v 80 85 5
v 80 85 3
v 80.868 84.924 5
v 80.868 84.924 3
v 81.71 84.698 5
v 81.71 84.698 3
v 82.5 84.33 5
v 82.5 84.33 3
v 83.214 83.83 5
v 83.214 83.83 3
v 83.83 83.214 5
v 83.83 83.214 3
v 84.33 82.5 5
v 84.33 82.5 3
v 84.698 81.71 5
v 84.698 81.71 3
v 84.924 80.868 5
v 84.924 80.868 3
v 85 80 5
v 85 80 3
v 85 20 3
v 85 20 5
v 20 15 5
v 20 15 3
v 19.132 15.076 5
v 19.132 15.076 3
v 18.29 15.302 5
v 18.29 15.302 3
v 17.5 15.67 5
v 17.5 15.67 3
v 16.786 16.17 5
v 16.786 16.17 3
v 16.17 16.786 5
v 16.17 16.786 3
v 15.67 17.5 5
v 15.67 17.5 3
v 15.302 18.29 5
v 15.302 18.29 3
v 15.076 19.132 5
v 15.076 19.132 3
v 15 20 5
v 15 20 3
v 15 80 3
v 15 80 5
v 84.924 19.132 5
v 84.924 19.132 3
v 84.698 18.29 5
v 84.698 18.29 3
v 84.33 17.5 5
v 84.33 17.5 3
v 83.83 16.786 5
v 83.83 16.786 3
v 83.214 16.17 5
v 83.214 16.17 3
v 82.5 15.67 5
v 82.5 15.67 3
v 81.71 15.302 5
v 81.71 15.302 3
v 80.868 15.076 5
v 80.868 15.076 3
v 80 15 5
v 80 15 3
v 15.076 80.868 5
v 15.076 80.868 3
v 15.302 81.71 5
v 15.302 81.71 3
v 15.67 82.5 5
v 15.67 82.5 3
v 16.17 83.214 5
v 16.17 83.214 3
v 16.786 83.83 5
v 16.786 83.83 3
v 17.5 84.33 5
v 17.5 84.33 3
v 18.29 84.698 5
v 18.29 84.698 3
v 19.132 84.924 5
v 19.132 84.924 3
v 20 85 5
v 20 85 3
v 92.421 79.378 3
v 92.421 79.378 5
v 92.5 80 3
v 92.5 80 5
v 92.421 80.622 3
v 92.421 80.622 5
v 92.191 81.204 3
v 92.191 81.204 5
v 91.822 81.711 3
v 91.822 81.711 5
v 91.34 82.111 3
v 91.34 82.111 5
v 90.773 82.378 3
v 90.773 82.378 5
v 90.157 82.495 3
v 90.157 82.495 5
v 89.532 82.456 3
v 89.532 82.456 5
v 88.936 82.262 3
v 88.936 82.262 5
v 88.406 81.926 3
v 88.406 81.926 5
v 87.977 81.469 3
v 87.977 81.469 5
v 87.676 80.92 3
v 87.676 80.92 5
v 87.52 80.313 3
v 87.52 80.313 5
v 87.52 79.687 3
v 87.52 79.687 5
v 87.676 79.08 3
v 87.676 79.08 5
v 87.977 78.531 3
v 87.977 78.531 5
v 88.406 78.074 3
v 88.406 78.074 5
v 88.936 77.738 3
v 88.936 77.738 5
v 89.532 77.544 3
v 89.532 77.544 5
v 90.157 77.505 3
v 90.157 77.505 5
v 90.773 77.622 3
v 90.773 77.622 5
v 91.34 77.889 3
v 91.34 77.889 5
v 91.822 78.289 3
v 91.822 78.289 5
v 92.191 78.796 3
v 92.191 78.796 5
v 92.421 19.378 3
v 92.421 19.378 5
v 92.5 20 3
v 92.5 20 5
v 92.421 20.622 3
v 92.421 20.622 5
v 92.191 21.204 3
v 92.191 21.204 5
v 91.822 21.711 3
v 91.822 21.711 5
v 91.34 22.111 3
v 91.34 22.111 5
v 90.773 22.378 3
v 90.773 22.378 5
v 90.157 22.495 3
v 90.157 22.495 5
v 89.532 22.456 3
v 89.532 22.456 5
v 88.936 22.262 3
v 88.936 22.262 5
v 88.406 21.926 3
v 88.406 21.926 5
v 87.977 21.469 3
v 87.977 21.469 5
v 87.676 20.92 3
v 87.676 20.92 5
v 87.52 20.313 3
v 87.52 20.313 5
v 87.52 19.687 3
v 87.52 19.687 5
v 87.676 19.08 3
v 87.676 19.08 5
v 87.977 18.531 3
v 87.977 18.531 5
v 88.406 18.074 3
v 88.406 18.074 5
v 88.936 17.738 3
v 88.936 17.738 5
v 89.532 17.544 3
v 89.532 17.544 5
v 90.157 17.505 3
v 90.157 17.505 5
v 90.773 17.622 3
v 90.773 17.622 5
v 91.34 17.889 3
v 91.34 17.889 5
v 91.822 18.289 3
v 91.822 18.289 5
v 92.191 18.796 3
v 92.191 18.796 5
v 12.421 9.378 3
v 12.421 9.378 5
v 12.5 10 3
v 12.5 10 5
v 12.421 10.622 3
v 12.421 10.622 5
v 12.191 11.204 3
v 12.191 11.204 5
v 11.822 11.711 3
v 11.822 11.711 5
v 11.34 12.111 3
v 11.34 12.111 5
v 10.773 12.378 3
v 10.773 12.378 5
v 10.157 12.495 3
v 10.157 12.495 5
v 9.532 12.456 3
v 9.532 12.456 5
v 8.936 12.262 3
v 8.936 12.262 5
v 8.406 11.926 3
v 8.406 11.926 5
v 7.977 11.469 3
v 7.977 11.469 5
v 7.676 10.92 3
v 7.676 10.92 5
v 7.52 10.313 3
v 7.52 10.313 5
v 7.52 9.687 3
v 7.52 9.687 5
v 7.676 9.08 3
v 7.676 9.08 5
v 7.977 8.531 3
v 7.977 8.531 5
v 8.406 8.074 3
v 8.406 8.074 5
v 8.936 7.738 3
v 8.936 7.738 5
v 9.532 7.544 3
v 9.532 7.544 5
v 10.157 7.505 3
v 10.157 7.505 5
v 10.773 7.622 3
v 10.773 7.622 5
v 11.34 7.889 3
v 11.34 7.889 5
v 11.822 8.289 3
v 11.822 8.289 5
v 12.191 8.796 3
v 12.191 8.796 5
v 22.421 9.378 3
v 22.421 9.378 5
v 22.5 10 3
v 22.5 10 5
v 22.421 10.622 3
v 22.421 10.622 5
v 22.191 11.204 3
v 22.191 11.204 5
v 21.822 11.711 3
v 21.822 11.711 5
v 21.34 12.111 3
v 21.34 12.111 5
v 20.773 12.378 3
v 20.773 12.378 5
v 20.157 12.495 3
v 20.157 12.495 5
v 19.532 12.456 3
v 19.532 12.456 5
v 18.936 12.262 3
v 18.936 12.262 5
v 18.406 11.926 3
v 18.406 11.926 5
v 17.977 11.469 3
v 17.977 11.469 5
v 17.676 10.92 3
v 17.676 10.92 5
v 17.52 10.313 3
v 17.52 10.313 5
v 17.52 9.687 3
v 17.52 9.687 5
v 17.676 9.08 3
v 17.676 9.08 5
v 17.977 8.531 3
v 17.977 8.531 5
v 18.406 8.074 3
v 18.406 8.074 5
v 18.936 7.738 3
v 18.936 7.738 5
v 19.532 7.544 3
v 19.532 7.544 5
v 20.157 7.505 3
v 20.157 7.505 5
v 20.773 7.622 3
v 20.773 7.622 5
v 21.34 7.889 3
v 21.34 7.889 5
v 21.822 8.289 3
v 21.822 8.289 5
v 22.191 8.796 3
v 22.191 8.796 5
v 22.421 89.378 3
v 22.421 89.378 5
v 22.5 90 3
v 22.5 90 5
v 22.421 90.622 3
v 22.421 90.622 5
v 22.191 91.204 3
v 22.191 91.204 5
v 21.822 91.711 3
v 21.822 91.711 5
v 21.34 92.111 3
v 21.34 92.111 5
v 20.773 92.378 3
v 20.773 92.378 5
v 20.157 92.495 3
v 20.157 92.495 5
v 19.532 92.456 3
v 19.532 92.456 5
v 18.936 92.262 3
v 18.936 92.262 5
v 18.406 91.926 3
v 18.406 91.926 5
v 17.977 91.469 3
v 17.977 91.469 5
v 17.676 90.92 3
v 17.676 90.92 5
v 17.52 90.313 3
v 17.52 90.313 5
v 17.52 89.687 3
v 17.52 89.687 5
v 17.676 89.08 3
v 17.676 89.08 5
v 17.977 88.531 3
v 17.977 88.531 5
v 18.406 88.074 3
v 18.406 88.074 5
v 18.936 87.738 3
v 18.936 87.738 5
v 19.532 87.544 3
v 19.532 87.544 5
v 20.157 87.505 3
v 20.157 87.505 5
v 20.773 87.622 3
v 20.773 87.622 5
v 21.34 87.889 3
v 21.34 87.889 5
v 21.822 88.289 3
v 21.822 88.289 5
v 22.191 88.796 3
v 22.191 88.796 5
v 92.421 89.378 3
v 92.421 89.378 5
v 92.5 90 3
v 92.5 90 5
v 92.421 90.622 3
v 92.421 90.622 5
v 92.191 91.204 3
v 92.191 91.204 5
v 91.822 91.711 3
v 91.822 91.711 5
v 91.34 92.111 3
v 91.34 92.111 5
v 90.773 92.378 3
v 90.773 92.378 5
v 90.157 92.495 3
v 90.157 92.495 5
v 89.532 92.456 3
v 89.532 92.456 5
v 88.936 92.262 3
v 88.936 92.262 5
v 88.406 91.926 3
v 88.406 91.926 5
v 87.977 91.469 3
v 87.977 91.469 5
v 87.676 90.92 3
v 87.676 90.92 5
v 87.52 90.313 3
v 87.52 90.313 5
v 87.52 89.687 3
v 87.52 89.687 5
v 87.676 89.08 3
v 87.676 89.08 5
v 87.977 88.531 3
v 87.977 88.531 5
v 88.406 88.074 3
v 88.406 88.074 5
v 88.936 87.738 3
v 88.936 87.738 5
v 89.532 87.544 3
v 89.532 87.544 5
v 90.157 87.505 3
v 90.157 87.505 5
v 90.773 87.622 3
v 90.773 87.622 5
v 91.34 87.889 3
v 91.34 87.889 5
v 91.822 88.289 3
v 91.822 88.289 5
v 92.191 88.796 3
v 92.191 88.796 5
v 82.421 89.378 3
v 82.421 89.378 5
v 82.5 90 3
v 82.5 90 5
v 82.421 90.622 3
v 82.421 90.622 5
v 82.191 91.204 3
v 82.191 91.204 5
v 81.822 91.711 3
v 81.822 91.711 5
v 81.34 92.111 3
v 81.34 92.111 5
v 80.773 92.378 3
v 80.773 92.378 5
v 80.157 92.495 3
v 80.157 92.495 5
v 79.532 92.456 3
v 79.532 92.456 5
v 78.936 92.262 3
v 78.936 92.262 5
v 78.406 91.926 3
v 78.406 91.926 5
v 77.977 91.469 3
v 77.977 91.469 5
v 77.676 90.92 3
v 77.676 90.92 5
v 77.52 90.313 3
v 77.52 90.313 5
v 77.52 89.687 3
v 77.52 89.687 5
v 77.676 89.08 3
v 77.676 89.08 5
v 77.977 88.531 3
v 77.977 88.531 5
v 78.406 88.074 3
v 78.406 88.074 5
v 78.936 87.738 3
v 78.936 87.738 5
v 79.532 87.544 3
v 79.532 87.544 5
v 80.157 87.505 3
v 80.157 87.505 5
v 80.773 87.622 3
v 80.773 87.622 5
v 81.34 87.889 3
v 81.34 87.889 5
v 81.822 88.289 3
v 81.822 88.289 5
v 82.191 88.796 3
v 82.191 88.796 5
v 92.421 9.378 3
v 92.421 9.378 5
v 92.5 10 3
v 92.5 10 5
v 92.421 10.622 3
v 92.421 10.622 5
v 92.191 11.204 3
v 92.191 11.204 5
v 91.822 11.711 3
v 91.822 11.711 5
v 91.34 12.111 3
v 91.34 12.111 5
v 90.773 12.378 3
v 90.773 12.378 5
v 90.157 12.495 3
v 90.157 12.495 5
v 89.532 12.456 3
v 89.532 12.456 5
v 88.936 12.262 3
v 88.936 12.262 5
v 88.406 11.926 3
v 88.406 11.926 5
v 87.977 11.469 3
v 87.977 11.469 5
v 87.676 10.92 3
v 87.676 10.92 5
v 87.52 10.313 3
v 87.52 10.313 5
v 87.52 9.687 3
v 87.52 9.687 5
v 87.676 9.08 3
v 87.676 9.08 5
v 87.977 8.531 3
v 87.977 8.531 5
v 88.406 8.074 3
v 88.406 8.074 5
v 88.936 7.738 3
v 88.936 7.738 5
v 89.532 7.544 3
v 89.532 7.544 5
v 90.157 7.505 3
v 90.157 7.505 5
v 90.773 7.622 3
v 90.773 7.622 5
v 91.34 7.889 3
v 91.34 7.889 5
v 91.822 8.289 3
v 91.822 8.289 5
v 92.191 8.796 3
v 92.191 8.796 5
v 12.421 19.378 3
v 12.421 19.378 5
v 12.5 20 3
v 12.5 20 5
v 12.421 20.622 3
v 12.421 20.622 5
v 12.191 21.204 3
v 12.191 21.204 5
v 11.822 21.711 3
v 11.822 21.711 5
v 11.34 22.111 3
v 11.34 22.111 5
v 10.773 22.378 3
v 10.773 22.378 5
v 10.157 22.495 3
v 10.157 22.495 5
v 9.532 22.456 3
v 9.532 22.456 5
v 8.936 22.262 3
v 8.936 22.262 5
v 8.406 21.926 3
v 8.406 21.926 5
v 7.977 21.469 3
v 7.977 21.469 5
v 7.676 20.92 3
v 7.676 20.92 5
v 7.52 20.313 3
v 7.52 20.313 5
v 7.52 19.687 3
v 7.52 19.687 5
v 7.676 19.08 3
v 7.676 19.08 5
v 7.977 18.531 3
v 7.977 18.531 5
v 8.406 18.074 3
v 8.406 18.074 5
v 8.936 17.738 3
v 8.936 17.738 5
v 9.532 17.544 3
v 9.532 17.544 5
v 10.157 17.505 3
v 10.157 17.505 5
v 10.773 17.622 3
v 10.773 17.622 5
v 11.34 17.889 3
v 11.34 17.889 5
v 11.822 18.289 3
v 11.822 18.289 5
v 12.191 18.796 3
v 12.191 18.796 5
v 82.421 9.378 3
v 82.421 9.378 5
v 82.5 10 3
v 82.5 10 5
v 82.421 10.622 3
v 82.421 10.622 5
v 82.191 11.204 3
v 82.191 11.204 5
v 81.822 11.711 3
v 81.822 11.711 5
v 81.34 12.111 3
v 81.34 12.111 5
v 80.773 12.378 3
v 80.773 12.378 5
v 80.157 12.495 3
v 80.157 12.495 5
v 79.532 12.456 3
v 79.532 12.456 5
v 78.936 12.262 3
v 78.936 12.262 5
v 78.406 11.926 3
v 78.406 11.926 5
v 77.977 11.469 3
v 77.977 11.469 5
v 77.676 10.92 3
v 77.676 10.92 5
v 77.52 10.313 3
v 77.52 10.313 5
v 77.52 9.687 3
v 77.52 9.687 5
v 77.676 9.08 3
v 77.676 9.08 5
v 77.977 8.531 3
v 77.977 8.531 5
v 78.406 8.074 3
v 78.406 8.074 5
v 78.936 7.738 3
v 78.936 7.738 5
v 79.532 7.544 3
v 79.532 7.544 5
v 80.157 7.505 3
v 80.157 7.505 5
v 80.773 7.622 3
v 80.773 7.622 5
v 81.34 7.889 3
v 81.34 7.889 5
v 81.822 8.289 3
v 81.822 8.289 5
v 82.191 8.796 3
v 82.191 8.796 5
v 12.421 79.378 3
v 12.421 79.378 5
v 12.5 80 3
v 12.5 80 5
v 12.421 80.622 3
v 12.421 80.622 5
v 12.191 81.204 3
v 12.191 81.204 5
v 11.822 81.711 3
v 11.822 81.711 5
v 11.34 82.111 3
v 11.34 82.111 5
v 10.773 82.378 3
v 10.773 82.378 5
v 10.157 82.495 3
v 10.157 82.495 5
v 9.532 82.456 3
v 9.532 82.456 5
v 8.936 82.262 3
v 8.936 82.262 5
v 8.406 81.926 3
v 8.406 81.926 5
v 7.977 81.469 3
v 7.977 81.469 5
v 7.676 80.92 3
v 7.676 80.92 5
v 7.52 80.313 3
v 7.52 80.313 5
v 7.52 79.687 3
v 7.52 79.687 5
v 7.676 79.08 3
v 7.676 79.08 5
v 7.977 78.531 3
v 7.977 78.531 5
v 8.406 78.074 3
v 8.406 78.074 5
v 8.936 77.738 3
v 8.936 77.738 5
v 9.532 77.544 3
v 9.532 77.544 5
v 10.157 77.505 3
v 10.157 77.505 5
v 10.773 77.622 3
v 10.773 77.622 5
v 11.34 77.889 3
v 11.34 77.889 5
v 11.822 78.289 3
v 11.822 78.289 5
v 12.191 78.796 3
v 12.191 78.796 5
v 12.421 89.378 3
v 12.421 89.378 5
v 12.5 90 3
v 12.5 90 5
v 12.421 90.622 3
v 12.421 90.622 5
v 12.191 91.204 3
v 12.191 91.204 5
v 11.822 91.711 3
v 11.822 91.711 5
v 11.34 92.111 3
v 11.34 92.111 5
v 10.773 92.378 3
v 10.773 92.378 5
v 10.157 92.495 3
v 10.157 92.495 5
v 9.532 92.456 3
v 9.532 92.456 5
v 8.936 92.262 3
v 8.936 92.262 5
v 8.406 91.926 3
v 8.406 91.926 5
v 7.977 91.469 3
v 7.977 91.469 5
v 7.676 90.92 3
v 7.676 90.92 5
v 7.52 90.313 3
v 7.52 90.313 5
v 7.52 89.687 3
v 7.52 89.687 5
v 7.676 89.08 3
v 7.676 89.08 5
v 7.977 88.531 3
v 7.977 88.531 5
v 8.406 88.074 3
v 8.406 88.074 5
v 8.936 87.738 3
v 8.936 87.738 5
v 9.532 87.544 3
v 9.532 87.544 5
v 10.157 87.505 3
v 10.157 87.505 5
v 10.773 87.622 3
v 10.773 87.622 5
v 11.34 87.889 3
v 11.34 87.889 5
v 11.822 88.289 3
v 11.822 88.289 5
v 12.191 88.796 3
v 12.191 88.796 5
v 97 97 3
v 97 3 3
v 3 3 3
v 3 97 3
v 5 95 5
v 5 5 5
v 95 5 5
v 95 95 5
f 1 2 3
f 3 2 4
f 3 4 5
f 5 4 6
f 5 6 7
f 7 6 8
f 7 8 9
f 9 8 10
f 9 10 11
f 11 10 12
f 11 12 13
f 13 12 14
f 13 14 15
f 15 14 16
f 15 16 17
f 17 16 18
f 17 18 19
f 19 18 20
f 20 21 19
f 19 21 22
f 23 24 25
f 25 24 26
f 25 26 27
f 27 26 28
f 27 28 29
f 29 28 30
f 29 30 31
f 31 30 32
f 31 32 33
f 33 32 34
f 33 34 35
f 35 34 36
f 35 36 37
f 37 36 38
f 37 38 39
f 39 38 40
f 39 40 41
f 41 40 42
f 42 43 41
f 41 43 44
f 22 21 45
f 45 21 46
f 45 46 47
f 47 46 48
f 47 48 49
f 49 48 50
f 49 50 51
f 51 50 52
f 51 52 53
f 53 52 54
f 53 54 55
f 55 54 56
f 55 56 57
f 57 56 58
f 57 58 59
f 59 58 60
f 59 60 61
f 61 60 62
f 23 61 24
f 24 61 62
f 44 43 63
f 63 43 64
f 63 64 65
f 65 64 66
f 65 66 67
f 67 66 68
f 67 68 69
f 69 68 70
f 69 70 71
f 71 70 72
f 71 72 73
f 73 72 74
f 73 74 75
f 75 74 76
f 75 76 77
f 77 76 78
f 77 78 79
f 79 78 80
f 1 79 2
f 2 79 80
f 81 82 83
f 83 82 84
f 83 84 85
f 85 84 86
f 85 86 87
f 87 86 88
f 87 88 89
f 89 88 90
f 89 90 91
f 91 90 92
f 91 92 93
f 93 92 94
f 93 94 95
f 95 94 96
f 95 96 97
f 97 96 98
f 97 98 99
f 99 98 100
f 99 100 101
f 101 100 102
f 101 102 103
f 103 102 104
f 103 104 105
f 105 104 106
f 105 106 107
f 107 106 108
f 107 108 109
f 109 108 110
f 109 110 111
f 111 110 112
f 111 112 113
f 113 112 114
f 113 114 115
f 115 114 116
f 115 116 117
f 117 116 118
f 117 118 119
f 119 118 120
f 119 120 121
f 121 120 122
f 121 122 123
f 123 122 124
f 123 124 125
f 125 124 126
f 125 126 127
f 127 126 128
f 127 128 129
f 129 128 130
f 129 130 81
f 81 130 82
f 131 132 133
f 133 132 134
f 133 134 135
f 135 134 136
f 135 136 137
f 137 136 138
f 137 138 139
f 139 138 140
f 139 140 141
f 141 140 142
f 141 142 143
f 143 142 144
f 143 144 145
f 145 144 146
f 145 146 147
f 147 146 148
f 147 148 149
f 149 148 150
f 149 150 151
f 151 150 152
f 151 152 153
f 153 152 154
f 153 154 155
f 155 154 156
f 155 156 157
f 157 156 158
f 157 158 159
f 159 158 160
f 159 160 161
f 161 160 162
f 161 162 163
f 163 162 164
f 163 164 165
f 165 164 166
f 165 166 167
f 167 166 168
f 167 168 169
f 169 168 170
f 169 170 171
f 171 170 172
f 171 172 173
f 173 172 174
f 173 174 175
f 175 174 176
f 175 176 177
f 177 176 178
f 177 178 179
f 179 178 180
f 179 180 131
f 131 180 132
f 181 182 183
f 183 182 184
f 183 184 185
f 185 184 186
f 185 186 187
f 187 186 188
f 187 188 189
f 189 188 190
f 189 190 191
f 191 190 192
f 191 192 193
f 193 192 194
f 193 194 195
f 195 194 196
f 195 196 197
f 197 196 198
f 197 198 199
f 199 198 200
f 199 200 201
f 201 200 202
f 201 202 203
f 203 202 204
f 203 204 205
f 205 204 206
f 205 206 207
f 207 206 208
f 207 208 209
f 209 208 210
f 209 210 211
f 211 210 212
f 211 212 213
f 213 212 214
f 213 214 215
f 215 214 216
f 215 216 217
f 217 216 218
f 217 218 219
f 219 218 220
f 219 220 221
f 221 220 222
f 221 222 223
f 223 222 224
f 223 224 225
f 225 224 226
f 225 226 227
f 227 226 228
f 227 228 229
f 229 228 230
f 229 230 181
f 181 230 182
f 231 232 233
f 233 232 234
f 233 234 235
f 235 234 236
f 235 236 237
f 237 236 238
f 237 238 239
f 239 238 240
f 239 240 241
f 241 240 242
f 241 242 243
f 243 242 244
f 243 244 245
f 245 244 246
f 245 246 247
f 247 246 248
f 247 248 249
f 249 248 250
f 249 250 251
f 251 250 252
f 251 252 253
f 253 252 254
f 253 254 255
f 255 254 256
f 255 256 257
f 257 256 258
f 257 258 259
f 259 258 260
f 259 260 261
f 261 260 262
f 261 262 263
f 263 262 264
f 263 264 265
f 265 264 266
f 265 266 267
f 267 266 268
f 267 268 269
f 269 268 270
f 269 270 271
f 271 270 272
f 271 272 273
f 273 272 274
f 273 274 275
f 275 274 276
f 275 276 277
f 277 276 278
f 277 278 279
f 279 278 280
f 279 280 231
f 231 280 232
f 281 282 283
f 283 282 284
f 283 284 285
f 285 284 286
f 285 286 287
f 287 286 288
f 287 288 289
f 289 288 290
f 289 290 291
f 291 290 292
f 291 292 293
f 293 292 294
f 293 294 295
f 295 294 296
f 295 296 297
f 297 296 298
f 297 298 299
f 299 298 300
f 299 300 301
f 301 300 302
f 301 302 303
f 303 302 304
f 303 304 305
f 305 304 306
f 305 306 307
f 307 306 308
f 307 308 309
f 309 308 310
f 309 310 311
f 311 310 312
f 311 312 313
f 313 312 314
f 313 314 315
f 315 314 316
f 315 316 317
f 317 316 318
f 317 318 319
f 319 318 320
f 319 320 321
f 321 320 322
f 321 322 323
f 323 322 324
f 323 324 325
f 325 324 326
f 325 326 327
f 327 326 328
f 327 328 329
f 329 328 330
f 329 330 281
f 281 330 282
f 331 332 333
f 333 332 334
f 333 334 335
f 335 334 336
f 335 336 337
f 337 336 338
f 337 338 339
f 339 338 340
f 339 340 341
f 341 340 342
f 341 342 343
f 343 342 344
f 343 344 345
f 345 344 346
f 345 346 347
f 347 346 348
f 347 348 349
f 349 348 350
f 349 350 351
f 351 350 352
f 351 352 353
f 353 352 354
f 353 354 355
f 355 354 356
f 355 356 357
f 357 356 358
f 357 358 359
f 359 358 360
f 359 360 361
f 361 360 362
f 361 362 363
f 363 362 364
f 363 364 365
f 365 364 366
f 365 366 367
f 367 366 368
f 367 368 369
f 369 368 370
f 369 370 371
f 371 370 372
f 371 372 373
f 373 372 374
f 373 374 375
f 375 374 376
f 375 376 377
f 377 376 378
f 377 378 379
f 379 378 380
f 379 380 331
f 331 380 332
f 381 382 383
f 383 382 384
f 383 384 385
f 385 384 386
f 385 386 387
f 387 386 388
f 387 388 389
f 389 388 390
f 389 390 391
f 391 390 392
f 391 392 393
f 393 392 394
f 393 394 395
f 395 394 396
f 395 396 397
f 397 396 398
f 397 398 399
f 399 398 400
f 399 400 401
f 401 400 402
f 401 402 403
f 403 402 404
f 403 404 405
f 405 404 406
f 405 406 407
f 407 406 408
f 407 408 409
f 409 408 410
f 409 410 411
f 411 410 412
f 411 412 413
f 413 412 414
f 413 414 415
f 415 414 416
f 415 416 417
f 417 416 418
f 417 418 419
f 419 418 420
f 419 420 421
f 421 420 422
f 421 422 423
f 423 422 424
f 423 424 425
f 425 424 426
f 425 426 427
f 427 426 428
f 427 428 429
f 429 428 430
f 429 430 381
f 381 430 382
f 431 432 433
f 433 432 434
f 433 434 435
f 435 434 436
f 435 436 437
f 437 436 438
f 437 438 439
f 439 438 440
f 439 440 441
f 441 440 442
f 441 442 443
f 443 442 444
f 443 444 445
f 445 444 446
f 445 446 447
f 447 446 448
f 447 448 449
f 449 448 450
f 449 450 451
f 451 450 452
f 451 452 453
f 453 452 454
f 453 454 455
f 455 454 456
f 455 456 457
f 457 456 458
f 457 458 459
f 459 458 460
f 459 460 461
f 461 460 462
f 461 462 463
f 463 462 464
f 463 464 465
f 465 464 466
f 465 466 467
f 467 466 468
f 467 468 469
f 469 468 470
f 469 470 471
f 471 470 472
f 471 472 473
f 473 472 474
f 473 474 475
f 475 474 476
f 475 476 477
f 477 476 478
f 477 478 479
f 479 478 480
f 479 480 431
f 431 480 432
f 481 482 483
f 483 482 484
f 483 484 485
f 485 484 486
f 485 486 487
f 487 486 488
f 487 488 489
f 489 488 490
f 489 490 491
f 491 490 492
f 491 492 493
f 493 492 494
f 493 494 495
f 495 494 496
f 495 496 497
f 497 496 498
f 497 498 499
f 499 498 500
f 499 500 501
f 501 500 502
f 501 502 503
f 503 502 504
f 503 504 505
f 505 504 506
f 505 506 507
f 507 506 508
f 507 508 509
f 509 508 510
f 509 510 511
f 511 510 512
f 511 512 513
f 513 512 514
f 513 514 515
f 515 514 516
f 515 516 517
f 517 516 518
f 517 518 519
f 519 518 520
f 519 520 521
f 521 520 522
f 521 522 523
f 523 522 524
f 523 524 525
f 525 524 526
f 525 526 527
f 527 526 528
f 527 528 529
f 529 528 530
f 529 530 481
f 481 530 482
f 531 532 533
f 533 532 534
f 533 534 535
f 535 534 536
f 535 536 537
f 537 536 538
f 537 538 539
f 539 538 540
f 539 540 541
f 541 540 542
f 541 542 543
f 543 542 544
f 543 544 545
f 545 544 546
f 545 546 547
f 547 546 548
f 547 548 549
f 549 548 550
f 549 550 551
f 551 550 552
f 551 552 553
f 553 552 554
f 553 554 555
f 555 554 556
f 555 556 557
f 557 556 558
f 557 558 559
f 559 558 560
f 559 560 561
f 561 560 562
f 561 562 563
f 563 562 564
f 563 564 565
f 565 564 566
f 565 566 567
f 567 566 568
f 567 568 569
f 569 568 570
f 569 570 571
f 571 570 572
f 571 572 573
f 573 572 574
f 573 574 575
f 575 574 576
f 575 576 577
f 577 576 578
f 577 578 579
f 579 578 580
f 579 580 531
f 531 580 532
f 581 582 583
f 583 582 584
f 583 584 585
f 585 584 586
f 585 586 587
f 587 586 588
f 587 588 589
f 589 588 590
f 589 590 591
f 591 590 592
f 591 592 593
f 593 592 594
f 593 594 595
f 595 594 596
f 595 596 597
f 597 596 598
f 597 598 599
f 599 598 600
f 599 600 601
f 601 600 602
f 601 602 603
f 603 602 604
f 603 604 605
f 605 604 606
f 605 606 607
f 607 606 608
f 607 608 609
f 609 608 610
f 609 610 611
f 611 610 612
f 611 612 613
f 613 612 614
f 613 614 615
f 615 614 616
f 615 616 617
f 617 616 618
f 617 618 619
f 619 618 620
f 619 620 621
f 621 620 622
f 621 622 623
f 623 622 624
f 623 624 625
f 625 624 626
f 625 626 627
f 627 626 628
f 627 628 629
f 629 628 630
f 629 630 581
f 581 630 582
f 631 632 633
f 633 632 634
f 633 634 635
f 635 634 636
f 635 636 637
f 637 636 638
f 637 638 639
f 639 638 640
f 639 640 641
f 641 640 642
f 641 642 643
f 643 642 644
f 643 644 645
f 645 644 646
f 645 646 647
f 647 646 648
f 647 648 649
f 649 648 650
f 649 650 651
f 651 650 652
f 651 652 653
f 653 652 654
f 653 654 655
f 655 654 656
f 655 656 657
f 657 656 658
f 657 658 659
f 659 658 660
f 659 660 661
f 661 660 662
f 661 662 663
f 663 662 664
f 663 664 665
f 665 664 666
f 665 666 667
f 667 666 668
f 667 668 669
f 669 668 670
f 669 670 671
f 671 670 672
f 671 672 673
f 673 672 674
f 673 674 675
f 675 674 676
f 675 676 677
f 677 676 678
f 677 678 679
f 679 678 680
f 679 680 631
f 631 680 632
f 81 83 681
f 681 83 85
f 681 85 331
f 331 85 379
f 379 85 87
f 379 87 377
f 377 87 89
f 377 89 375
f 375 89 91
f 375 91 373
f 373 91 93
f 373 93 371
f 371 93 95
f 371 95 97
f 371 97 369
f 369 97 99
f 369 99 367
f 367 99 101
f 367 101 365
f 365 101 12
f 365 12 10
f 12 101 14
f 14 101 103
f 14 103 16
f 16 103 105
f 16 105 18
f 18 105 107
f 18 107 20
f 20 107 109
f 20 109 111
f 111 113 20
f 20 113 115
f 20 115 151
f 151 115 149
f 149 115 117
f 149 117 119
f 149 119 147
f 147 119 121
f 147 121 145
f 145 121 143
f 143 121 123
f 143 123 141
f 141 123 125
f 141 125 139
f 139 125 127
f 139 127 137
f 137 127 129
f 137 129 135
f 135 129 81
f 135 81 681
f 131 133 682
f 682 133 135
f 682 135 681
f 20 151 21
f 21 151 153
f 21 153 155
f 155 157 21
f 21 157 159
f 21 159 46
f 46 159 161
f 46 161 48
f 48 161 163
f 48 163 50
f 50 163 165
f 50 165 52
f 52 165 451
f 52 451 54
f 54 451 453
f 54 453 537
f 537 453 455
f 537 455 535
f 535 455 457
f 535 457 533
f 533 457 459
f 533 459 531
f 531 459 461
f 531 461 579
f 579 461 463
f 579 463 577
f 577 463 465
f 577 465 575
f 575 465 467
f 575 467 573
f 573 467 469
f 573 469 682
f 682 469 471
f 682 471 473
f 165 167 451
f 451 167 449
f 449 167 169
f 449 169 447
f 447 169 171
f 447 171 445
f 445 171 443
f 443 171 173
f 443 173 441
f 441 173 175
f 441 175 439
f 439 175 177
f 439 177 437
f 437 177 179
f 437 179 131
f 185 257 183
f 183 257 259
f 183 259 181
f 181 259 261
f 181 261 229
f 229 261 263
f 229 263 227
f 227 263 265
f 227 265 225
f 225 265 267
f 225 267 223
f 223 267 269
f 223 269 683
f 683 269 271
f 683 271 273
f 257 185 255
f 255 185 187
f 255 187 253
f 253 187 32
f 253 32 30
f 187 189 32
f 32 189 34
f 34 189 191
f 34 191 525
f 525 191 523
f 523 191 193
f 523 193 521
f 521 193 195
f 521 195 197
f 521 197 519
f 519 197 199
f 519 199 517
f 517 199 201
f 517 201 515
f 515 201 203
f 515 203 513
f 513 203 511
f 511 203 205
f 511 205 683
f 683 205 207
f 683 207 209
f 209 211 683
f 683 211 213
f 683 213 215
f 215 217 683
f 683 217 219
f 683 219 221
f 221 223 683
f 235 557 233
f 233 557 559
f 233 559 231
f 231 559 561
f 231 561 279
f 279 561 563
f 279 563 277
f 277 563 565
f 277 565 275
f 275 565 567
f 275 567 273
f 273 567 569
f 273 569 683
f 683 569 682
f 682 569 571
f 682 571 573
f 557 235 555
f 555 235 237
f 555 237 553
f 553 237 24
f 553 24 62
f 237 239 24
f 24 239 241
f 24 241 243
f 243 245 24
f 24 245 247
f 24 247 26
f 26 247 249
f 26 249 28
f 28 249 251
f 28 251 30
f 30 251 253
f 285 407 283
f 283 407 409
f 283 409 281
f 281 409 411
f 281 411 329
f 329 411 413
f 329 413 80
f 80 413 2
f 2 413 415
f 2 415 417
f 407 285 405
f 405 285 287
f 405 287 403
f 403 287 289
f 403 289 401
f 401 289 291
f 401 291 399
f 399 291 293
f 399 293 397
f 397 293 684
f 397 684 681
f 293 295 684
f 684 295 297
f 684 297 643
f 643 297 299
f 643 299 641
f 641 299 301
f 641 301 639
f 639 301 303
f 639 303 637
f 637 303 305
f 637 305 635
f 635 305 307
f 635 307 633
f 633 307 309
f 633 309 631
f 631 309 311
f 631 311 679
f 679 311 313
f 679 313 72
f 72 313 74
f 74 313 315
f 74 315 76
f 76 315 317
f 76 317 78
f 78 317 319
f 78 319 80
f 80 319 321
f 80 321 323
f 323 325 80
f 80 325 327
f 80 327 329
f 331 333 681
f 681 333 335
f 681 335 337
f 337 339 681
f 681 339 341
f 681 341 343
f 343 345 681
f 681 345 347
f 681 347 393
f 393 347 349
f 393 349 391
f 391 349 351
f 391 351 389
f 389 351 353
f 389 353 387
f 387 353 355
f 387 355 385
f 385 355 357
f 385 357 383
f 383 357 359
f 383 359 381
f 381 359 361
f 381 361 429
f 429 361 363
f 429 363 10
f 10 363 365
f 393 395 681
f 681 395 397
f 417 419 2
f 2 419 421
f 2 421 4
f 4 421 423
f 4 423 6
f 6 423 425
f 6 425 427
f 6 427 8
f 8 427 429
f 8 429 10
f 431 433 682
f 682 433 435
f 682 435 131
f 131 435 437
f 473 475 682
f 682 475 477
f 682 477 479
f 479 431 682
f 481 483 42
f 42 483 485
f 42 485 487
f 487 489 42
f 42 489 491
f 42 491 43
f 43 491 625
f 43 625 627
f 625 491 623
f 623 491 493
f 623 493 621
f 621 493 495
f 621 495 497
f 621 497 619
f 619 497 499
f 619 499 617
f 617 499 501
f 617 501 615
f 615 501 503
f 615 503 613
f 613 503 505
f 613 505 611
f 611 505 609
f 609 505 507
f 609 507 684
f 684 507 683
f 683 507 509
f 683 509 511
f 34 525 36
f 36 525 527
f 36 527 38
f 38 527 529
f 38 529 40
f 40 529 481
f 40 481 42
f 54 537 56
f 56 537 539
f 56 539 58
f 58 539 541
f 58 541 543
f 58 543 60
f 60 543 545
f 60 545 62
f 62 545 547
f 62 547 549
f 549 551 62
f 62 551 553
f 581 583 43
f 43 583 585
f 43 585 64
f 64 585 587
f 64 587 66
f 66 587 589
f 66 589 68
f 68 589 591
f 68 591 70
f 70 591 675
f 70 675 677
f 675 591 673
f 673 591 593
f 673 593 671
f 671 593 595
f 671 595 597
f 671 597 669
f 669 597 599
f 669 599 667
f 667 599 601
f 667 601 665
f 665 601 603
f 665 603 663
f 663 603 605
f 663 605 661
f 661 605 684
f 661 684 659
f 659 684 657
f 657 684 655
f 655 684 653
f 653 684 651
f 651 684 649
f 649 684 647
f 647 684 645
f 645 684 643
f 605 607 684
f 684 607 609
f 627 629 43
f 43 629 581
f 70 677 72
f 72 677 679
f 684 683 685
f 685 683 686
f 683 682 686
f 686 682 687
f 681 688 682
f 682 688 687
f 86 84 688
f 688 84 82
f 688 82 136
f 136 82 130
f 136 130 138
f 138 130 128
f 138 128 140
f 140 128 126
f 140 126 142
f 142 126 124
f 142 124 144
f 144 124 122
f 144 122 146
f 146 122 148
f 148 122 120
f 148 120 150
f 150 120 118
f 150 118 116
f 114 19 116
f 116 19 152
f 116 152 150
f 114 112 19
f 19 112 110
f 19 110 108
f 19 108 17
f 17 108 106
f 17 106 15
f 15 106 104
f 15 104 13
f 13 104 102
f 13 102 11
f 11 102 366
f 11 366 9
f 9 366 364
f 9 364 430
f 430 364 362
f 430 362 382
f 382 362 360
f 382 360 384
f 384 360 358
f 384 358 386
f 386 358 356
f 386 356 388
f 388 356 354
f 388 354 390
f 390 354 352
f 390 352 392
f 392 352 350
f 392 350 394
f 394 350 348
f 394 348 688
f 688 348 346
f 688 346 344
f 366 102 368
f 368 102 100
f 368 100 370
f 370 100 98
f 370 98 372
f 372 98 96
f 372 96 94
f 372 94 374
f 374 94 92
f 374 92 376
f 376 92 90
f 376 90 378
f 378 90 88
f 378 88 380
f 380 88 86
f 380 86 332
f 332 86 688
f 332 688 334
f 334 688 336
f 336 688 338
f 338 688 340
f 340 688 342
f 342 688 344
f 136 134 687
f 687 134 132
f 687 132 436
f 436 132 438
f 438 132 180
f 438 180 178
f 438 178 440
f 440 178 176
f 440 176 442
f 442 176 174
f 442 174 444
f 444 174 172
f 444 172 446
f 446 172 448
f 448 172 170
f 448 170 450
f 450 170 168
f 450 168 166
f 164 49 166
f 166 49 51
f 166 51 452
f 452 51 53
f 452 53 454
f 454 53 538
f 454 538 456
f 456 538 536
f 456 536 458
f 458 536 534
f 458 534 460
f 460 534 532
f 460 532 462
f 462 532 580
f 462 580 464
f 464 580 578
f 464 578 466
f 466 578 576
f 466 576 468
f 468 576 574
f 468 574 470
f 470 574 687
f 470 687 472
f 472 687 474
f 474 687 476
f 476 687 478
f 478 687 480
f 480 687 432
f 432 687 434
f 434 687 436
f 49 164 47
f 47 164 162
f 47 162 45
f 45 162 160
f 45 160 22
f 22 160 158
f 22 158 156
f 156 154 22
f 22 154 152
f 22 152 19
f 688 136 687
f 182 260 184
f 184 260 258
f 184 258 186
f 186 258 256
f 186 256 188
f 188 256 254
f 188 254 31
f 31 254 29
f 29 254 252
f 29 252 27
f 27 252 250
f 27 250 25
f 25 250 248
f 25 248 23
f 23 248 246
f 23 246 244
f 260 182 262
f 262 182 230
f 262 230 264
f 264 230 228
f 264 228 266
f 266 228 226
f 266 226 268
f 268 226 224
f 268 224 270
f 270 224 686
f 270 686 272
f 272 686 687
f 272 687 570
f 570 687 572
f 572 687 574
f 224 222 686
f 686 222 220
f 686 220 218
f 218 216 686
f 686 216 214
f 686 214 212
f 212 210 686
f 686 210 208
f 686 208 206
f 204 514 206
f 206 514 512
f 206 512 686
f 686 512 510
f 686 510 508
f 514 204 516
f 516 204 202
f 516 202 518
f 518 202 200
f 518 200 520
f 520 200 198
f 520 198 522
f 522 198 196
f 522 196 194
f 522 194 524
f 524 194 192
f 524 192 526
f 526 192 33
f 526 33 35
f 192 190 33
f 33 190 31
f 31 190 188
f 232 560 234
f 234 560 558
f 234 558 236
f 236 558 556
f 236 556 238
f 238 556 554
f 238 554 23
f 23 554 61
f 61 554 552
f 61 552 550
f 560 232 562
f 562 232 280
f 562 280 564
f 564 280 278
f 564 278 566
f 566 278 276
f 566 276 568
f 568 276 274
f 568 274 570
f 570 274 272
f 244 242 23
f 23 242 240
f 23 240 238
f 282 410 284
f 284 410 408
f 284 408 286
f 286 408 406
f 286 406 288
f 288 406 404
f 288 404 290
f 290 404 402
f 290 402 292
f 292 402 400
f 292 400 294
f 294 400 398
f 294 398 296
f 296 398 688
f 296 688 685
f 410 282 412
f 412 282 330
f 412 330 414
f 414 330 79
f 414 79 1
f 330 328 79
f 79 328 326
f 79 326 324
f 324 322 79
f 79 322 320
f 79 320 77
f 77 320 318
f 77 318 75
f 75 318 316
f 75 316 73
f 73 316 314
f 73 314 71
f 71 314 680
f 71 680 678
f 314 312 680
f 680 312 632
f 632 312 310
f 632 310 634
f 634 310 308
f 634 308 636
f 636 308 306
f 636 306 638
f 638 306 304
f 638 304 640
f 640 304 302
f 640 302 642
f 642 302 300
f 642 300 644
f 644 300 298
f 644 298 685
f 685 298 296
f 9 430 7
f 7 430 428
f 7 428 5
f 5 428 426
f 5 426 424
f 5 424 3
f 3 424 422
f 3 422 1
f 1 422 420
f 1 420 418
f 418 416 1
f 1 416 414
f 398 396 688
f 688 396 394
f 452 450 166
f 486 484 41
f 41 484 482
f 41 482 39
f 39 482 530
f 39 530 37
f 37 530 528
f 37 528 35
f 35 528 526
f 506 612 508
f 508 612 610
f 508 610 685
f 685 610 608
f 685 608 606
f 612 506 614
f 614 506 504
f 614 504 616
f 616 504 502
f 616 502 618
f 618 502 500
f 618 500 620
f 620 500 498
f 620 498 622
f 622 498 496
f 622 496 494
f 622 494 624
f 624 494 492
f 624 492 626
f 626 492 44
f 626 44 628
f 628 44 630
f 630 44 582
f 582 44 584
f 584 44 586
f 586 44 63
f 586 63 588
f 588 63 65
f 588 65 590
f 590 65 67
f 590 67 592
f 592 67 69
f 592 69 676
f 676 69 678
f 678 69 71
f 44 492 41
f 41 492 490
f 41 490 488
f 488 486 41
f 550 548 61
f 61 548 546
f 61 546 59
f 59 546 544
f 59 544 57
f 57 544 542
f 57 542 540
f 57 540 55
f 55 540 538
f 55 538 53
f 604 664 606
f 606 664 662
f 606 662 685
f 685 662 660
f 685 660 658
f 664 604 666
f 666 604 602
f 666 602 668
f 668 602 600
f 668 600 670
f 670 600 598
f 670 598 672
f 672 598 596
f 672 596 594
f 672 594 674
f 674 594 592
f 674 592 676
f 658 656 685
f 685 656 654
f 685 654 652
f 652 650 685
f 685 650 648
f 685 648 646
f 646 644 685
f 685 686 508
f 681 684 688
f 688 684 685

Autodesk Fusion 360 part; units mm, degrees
sketch "Sketch1" plane through (0, 0, 0) normal (0, 0, 1) x (1, 0, 0)
  line L0 (0, 0) -> (100, 0)
  line L1 (100, 0) -> (100, 100)
  line L2 (100, 100) -> (0, 100)
  line L3 (0, 100) -> (0, 0)
  line L4 (0, 0) -> (15, 0)
  line L5 (15, 0) -> (15, 15)
  line L6 (100, 100) -> (85, 100)
  line L7 (85, 100) -> (85, 85)
  line L8 (15, 15) -> (85, 15)
  line L9 (85, 15) -> (85, 85)
  line L10 (85, 85) -> (15, 85)
  line L11 (15, 85) -> (15, 15)
  dimension "d1" = 100
  dimension "d2" = 100
  dimension "d3" = 15
  dimension "d4" = 15
  dimension "d5" = 15
  dimension "d6" = 15
extrude "Extrude1" add sketch "Sketch1" along normal blind 5 contours L0 L2 L3 L4 L5 L7 L10 L11 | L0 L1 L2 L5 L6 L7 L8 L9
chamfer "Chamfer1" distance 5 angle 45 1 edges at (50, 0, 5)
chamfer "Chamfer2" distance 5 angle 45 1 edges at (0, 52.5, 5)
chamfer "Chamfer3" distance 5 angle 45 1 edges at (52.5, 100, 5)
chamfer "Chamfer4" distance 5 angle 45 1 edges at (100, 50, 5)
extrude "Extrude2" cut 1 faces at (5, 61.6667, 0) along direction (0, 0, 1) blind 3
sketch "Sketch2" plane through (0, 0, 5) normal (0, 0, 1) x (-1, 0, 0)
  line L0 (-15, -15) -> (-15, -85)
  line L1 (-15, -85) -> (-85, -85)
  line L2 (-85, -85) -> (-85, -15)
  line L3 (-85, -15) -> (-15, -15)
  line L4 (-95, -5) -> (-95, -95)
  line L5 (-95, -95) -> (-5, -95)
  line L6 (-5, -95) -> (-5, -5)
  line L7 (-5, -5) -> (-95, -5)
  circle A0 centre (-10, -90) radius 2.5
  line L8 (-10, -90) -> (-20, -90)
  circle A1 centre (-20, -90) radius 2.5
  line L9 (-10, -90) -> (-10, -80)
  circle A2 centre (-10, -80) radius 2.5
  circle A3 centre (-90, -90) radius 2.5
  line L10 (-90, -90) -> (-90, -80)
  line L11 (-90, -90) -> (-80, -90)
  circle A4 centre (-90, -80) radius 2.5
  circle A5 centre (-80, -90) radius 2.5
  circle A6 centre (-90, -10) radius 2.5
  line L12 (-90, -10) -> (-90, -20)
  line L13 (-90, -10) -> (-80, -10)
  circle A7 centre (-80, -10) radius 2.5
  circle A8 centre (-90, -20) radius 2.5
  circle A9 centre (-10, -10) radius 2.5
  line L14 (-10, -10) -> (-20, -10)
  line L15 (-10, -10) -> (-10, -20)
  circle A10 centre (-20, -10) radius 2.5
  circle A11 centre (-10, -20) radius 2.5
  dimension "d15" = 5
  dimension "d16" = 10
  dimension "d17" = 5
  dimension "d18" = 10
  dimension "d19" = 5
  dimension "d20" = 5
  dimension "d21" = 10
  dimension "d22" = 10
  dimension "d23" = 5
  dimension "d24" = 5
  dimension "d25" = 5
  dimension "d26" = 10
  dimension "d27" = 10
  dimension "d28" = 5
  dimension "d29" = 5
  dimension "d30" = 5
  dimension "d31" = 10
  dimension "d32" = 10
  dimension "d33" = 5
  dimension "d34" = 5
extrude "Extrude3" cut sketch "Sketch2" against normal blind 5 contours A0 L8 L9 | A1 | A2 | A0 L8 L9 | A3 L10 L11 | A4 | A3 L10 L11 | A5 | A6 L12 L13 | A8 | A6 L12 L13 | A7 | A9 L14 L15 | A11 | A10 | A9 L14 L15
fillet "Fillet1" radius 5 1 edges at (15, 85, 4)
fillet "Fillet2" radius 5 1 edges at (85, 15, 4)
fillet "Fillet3" radius 5 1 edges at (15, 15, 4)
fillet "Fillet4" radius 5 1 edges at (85, 85, 4)
